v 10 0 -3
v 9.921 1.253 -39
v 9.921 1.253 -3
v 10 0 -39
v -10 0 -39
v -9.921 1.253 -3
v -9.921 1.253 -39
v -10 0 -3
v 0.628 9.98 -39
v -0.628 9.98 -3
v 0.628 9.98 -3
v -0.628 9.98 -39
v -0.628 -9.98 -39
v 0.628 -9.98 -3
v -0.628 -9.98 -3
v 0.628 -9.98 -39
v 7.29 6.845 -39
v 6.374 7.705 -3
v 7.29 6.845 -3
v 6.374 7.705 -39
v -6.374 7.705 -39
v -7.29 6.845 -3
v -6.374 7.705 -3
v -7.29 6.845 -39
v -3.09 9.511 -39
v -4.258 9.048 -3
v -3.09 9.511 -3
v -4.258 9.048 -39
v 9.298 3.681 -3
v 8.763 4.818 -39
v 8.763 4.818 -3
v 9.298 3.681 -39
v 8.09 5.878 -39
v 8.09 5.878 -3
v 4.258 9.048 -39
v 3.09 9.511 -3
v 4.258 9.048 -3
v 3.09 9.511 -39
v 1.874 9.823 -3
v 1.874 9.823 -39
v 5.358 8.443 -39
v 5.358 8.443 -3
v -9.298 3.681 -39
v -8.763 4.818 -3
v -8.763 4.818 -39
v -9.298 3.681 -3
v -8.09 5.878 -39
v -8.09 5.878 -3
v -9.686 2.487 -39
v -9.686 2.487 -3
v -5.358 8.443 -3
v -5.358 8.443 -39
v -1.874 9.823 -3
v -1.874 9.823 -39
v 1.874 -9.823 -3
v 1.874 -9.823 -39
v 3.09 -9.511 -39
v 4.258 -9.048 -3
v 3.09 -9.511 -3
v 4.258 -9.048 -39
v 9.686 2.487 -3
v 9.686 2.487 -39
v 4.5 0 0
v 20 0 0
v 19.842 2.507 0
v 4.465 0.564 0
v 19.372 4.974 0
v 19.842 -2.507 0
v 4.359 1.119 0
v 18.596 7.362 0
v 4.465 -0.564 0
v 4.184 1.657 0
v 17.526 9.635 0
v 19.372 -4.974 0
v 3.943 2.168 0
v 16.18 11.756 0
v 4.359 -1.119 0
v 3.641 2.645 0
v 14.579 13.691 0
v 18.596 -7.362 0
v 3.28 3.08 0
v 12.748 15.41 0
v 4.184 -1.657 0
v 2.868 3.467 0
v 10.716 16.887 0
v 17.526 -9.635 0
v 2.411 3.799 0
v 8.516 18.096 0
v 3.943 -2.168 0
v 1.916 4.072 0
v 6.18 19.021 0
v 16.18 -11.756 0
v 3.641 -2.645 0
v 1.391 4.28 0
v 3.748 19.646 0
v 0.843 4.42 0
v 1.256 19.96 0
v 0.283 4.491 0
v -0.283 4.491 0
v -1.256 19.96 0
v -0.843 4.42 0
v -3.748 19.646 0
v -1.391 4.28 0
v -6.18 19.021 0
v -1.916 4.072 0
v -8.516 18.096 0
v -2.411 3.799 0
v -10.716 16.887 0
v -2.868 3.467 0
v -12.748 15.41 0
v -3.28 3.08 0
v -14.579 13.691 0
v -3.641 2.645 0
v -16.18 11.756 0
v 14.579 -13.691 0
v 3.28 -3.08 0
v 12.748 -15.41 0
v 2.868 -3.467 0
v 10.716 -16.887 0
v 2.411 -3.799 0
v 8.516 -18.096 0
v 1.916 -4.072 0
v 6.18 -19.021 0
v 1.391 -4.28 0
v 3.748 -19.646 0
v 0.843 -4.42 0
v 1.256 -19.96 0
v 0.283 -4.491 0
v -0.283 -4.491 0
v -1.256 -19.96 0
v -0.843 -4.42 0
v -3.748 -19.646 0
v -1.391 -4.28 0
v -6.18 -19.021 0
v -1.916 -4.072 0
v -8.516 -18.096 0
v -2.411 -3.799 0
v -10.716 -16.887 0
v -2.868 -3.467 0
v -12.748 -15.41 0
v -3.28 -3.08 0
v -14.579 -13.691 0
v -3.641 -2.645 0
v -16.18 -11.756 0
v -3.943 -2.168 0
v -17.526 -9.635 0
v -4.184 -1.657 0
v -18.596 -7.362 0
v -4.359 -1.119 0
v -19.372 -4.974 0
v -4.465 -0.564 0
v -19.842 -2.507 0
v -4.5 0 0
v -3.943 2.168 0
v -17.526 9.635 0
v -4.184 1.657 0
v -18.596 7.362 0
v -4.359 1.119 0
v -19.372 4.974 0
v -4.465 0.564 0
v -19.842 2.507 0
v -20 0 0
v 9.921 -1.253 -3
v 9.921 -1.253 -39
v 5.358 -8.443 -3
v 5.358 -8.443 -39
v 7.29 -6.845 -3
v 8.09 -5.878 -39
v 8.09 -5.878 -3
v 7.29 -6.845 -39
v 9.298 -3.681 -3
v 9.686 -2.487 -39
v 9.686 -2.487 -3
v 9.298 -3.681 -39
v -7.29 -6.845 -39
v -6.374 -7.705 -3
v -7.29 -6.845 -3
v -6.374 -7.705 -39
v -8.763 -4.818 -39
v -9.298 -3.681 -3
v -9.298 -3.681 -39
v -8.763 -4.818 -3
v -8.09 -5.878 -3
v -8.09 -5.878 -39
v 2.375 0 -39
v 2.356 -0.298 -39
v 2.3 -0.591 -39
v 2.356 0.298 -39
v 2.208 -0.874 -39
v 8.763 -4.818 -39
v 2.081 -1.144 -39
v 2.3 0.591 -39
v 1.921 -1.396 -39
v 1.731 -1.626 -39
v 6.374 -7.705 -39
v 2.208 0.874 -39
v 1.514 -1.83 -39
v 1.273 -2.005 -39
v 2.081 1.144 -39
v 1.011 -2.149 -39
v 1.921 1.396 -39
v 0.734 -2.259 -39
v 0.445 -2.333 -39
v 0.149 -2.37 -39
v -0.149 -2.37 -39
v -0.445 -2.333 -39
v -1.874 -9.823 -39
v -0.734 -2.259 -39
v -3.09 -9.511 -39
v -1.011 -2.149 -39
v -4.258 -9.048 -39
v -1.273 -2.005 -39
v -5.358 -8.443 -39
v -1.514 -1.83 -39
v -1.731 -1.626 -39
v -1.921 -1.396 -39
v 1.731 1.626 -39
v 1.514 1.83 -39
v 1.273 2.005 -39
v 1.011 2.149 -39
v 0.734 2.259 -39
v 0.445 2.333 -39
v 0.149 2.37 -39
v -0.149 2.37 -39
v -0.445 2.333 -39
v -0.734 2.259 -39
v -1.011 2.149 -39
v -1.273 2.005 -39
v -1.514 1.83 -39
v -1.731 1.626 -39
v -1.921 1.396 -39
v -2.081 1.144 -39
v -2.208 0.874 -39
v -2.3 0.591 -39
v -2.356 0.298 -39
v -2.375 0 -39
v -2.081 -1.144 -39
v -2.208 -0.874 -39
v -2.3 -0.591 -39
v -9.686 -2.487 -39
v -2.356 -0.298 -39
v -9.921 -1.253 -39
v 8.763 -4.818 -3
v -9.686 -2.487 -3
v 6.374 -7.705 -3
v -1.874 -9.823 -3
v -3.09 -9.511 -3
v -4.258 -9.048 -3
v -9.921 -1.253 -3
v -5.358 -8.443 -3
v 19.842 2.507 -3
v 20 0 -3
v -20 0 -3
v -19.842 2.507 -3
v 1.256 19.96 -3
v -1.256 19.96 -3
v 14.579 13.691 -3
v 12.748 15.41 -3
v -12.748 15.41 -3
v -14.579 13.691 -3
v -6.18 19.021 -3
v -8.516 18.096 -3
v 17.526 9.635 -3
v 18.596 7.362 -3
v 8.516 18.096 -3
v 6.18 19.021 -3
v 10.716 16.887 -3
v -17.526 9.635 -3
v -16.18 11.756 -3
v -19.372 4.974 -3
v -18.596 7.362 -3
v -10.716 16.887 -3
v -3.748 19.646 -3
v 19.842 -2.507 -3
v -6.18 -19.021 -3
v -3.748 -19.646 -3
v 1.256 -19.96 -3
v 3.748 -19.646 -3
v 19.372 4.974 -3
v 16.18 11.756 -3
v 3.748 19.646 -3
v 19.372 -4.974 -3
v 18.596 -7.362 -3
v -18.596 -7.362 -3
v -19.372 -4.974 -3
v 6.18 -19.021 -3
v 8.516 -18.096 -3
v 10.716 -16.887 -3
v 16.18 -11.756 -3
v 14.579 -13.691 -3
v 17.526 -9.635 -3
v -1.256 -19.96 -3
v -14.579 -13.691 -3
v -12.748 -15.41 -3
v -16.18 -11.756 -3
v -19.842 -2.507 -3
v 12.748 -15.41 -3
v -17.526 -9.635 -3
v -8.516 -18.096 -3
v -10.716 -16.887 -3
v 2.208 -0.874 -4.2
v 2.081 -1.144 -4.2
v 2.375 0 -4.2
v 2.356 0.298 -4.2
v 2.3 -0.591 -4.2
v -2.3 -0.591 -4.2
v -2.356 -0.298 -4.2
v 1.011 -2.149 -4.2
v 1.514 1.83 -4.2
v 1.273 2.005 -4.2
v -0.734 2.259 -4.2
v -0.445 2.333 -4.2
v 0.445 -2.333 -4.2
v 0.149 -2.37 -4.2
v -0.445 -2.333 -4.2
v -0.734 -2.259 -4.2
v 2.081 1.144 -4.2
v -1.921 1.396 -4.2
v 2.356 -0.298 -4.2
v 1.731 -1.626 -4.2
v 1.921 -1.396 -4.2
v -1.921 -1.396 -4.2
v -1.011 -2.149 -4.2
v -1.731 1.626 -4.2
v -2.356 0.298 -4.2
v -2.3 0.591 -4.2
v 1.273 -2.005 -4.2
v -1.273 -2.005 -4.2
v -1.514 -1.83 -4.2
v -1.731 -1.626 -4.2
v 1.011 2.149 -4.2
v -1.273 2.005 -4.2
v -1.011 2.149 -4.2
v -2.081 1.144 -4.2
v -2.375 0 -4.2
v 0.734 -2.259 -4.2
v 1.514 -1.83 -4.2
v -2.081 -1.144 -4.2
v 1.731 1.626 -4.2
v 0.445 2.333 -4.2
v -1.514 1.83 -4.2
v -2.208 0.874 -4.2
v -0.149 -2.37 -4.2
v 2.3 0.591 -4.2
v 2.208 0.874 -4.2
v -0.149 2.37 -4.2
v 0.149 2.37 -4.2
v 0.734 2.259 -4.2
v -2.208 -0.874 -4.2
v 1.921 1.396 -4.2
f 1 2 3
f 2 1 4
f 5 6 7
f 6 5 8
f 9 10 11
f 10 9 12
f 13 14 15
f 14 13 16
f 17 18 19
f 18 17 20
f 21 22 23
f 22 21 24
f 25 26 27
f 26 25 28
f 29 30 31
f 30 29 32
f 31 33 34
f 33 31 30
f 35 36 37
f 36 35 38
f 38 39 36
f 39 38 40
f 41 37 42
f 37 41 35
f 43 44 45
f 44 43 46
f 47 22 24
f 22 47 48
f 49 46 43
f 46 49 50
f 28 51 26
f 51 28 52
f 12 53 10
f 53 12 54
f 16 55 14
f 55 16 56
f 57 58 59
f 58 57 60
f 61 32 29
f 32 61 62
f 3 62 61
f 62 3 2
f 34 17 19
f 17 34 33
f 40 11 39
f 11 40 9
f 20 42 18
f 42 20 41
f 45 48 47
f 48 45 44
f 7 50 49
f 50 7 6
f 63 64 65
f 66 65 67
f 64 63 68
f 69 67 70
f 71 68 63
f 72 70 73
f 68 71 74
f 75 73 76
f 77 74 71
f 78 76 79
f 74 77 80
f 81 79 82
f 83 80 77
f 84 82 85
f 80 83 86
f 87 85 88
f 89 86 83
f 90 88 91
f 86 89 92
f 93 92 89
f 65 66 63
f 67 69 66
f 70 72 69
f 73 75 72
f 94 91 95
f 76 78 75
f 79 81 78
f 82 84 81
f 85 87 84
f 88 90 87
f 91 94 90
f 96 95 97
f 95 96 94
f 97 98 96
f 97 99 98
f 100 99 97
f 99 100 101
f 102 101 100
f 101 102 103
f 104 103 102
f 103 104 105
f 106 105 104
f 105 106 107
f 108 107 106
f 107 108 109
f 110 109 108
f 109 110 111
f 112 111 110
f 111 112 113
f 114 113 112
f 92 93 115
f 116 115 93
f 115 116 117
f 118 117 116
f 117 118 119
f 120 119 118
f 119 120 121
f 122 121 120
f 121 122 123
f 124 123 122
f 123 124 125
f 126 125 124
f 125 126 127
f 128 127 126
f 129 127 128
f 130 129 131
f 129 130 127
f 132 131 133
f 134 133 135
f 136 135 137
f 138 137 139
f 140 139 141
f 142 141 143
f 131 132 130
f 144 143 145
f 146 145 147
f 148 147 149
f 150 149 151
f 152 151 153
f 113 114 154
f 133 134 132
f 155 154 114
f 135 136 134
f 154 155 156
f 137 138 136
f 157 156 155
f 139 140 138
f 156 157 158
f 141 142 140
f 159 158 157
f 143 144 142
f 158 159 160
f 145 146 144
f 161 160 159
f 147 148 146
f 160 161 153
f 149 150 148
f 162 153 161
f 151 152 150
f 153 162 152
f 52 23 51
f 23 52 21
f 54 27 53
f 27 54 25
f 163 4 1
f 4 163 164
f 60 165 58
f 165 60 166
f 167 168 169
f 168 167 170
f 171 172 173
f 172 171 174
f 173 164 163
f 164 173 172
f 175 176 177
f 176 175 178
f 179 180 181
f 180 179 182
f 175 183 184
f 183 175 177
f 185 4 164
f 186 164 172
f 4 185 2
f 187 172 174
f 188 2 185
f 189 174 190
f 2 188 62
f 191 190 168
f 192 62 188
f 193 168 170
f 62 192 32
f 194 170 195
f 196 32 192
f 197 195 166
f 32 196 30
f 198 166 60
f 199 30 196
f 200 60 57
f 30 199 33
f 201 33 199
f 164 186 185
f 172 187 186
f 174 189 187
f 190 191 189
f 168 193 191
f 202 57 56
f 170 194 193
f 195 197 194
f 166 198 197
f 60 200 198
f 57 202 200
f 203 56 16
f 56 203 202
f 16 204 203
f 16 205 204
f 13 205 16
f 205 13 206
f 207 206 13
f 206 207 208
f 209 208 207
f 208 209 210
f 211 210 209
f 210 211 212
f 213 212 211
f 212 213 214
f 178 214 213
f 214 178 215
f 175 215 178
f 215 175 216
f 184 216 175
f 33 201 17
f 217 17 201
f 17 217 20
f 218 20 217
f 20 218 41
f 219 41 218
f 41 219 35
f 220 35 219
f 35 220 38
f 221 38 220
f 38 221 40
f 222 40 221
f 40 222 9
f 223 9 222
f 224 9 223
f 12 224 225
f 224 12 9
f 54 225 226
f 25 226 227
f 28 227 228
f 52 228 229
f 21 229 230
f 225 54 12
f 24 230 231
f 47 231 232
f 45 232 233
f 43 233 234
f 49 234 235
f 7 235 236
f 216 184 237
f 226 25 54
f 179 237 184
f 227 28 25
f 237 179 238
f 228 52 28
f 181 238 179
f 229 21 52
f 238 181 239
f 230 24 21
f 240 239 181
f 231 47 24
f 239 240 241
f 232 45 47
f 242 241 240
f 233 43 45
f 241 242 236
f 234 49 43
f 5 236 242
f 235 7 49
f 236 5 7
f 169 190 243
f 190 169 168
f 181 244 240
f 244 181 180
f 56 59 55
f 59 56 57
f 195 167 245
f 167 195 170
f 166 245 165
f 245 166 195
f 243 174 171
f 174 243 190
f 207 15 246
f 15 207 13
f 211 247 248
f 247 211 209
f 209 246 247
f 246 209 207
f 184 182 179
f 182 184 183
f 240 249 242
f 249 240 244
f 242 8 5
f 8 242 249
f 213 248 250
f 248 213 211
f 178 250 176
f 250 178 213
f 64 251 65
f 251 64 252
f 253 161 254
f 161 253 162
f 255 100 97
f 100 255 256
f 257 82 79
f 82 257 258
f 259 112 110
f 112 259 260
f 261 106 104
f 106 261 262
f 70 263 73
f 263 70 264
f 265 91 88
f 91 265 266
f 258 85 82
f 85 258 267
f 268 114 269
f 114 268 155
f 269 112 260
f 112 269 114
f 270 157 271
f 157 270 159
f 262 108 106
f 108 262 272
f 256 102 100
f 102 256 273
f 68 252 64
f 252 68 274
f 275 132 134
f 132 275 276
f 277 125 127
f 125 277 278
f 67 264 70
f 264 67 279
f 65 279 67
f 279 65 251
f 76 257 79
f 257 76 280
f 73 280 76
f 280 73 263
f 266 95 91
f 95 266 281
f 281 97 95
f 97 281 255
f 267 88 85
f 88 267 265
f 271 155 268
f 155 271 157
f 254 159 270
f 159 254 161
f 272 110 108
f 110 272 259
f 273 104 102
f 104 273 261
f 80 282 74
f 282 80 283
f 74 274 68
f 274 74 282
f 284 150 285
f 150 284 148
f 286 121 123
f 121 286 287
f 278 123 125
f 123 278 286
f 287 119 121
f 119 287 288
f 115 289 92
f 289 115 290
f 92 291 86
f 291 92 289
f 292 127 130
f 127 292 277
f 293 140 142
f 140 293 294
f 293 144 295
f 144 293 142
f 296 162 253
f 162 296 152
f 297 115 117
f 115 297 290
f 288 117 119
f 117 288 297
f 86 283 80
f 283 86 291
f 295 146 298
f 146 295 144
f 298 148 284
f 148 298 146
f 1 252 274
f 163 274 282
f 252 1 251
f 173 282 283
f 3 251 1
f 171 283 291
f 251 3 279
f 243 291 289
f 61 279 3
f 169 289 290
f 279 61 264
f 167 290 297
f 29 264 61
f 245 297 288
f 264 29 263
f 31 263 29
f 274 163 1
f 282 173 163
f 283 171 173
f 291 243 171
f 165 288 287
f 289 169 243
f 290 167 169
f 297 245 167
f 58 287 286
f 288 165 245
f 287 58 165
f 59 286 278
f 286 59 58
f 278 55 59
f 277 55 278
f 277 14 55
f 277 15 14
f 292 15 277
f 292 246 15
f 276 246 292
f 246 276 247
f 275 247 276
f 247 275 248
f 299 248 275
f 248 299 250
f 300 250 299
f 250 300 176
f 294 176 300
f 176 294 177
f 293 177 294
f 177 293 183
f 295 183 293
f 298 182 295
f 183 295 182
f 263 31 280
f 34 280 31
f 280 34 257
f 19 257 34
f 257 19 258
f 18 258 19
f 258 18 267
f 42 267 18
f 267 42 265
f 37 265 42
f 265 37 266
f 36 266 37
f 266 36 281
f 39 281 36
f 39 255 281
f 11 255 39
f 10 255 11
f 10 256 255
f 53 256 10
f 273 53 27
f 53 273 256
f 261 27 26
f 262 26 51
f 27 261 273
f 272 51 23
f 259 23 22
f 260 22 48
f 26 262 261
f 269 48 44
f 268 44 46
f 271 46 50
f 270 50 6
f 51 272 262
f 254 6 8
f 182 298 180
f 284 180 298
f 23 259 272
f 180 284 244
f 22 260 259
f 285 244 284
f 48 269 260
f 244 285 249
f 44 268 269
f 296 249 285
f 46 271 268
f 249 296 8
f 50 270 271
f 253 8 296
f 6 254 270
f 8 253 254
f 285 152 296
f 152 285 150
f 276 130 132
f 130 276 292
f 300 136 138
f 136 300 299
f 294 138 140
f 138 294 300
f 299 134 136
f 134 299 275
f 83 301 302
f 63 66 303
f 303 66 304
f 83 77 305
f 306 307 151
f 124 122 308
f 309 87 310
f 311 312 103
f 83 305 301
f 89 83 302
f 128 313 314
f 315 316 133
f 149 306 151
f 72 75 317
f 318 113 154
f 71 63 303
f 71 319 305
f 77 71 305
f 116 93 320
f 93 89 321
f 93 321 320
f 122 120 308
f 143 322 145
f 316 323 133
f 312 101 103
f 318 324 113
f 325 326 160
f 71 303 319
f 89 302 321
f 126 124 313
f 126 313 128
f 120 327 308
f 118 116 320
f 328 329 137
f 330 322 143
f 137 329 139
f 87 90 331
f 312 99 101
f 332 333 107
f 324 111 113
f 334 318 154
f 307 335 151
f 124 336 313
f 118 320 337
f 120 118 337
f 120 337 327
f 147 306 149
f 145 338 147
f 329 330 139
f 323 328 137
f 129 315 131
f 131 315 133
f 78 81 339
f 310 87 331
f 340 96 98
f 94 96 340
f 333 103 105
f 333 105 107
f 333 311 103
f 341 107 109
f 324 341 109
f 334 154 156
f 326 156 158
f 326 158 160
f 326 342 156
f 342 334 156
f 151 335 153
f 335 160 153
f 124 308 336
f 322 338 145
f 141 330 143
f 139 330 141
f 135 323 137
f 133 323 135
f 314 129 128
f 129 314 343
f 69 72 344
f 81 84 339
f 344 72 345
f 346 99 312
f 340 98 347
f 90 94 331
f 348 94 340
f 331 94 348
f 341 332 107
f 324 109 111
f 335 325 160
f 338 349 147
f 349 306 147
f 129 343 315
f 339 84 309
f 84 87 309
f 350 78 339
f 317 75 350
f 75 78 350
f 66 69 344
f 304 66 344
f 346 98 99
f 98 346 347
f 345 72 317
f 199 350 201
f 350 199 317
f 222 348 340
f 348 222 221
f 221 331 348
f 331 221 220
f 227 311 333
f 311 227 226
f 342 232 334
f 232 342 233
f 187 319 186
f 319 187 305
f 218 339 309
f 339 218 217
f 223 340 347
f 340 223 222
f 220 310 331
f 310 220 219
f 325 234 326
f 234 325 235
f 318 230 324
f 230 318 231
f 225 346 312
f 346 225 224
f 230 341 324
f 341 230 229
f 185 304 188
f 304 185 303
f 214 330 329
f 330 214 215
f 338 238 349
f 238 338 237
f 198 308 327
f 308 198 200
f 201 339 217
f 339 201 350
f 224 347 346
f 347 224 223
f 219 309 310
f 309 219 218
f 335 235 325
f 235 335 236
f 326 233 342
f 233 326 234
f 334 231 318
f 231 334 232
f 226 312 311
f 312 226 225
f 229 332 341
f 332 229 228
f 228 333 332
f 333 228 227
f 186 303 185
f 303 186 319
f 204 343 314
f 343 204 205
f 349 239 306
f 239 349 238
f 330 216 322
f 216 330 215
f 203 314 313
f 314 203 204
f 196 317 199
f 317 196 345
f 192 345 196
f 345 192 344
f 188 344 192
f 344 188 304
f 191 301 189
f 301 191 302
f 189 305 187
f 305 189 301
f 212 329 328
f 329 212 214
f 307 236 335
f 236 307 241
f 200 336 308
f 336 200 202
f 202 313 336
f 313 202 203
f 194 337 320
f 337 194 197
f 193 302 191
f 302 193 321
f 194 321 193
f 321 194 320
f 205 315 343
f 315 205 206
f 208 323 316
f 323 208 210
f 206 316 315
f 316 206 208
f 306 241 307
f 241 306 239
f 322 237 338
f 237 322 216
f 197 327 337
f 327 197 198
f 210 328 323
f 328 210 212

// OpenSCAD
$fn = 50;


difference() {
	union() {
		translate(v = [0, 0, -39.0000000000]) {
			cylinder(h = 39, r = 10.0000000000);
		}
		translate(v = [0, 0, -3.0000000000]) {
			cylinder(h = 3, r = 20.0000000000);
		}
	}
	union() {
		translate(v = [0, 0, 0]) {
			rotate(a = [0, 0, 0]) {
				difference() {
					union() {
						#translate(v = [0, 0, -39.0000000000]) {
							cylinder(h = 39, r = 2.2500000000);
						}
						#translate(v = [0, 0, -4.2000000000]) {
							cylinder(h = 4.2000000000, r = 10.0000000000, r1 = 2.3750000000, r2 = 4.5000000000);
						}
						#translate(v = [0, 0, -39.0000000000]) {
							cylinder(h = 39, r = 2.3750000000);
						}
						#translate(v = [0, 0, -39.0000000000]) {
							cylinder(h = 39, r = 2.2500000000);
						}
					}
					union();
				}
			}
		}
	}
}
